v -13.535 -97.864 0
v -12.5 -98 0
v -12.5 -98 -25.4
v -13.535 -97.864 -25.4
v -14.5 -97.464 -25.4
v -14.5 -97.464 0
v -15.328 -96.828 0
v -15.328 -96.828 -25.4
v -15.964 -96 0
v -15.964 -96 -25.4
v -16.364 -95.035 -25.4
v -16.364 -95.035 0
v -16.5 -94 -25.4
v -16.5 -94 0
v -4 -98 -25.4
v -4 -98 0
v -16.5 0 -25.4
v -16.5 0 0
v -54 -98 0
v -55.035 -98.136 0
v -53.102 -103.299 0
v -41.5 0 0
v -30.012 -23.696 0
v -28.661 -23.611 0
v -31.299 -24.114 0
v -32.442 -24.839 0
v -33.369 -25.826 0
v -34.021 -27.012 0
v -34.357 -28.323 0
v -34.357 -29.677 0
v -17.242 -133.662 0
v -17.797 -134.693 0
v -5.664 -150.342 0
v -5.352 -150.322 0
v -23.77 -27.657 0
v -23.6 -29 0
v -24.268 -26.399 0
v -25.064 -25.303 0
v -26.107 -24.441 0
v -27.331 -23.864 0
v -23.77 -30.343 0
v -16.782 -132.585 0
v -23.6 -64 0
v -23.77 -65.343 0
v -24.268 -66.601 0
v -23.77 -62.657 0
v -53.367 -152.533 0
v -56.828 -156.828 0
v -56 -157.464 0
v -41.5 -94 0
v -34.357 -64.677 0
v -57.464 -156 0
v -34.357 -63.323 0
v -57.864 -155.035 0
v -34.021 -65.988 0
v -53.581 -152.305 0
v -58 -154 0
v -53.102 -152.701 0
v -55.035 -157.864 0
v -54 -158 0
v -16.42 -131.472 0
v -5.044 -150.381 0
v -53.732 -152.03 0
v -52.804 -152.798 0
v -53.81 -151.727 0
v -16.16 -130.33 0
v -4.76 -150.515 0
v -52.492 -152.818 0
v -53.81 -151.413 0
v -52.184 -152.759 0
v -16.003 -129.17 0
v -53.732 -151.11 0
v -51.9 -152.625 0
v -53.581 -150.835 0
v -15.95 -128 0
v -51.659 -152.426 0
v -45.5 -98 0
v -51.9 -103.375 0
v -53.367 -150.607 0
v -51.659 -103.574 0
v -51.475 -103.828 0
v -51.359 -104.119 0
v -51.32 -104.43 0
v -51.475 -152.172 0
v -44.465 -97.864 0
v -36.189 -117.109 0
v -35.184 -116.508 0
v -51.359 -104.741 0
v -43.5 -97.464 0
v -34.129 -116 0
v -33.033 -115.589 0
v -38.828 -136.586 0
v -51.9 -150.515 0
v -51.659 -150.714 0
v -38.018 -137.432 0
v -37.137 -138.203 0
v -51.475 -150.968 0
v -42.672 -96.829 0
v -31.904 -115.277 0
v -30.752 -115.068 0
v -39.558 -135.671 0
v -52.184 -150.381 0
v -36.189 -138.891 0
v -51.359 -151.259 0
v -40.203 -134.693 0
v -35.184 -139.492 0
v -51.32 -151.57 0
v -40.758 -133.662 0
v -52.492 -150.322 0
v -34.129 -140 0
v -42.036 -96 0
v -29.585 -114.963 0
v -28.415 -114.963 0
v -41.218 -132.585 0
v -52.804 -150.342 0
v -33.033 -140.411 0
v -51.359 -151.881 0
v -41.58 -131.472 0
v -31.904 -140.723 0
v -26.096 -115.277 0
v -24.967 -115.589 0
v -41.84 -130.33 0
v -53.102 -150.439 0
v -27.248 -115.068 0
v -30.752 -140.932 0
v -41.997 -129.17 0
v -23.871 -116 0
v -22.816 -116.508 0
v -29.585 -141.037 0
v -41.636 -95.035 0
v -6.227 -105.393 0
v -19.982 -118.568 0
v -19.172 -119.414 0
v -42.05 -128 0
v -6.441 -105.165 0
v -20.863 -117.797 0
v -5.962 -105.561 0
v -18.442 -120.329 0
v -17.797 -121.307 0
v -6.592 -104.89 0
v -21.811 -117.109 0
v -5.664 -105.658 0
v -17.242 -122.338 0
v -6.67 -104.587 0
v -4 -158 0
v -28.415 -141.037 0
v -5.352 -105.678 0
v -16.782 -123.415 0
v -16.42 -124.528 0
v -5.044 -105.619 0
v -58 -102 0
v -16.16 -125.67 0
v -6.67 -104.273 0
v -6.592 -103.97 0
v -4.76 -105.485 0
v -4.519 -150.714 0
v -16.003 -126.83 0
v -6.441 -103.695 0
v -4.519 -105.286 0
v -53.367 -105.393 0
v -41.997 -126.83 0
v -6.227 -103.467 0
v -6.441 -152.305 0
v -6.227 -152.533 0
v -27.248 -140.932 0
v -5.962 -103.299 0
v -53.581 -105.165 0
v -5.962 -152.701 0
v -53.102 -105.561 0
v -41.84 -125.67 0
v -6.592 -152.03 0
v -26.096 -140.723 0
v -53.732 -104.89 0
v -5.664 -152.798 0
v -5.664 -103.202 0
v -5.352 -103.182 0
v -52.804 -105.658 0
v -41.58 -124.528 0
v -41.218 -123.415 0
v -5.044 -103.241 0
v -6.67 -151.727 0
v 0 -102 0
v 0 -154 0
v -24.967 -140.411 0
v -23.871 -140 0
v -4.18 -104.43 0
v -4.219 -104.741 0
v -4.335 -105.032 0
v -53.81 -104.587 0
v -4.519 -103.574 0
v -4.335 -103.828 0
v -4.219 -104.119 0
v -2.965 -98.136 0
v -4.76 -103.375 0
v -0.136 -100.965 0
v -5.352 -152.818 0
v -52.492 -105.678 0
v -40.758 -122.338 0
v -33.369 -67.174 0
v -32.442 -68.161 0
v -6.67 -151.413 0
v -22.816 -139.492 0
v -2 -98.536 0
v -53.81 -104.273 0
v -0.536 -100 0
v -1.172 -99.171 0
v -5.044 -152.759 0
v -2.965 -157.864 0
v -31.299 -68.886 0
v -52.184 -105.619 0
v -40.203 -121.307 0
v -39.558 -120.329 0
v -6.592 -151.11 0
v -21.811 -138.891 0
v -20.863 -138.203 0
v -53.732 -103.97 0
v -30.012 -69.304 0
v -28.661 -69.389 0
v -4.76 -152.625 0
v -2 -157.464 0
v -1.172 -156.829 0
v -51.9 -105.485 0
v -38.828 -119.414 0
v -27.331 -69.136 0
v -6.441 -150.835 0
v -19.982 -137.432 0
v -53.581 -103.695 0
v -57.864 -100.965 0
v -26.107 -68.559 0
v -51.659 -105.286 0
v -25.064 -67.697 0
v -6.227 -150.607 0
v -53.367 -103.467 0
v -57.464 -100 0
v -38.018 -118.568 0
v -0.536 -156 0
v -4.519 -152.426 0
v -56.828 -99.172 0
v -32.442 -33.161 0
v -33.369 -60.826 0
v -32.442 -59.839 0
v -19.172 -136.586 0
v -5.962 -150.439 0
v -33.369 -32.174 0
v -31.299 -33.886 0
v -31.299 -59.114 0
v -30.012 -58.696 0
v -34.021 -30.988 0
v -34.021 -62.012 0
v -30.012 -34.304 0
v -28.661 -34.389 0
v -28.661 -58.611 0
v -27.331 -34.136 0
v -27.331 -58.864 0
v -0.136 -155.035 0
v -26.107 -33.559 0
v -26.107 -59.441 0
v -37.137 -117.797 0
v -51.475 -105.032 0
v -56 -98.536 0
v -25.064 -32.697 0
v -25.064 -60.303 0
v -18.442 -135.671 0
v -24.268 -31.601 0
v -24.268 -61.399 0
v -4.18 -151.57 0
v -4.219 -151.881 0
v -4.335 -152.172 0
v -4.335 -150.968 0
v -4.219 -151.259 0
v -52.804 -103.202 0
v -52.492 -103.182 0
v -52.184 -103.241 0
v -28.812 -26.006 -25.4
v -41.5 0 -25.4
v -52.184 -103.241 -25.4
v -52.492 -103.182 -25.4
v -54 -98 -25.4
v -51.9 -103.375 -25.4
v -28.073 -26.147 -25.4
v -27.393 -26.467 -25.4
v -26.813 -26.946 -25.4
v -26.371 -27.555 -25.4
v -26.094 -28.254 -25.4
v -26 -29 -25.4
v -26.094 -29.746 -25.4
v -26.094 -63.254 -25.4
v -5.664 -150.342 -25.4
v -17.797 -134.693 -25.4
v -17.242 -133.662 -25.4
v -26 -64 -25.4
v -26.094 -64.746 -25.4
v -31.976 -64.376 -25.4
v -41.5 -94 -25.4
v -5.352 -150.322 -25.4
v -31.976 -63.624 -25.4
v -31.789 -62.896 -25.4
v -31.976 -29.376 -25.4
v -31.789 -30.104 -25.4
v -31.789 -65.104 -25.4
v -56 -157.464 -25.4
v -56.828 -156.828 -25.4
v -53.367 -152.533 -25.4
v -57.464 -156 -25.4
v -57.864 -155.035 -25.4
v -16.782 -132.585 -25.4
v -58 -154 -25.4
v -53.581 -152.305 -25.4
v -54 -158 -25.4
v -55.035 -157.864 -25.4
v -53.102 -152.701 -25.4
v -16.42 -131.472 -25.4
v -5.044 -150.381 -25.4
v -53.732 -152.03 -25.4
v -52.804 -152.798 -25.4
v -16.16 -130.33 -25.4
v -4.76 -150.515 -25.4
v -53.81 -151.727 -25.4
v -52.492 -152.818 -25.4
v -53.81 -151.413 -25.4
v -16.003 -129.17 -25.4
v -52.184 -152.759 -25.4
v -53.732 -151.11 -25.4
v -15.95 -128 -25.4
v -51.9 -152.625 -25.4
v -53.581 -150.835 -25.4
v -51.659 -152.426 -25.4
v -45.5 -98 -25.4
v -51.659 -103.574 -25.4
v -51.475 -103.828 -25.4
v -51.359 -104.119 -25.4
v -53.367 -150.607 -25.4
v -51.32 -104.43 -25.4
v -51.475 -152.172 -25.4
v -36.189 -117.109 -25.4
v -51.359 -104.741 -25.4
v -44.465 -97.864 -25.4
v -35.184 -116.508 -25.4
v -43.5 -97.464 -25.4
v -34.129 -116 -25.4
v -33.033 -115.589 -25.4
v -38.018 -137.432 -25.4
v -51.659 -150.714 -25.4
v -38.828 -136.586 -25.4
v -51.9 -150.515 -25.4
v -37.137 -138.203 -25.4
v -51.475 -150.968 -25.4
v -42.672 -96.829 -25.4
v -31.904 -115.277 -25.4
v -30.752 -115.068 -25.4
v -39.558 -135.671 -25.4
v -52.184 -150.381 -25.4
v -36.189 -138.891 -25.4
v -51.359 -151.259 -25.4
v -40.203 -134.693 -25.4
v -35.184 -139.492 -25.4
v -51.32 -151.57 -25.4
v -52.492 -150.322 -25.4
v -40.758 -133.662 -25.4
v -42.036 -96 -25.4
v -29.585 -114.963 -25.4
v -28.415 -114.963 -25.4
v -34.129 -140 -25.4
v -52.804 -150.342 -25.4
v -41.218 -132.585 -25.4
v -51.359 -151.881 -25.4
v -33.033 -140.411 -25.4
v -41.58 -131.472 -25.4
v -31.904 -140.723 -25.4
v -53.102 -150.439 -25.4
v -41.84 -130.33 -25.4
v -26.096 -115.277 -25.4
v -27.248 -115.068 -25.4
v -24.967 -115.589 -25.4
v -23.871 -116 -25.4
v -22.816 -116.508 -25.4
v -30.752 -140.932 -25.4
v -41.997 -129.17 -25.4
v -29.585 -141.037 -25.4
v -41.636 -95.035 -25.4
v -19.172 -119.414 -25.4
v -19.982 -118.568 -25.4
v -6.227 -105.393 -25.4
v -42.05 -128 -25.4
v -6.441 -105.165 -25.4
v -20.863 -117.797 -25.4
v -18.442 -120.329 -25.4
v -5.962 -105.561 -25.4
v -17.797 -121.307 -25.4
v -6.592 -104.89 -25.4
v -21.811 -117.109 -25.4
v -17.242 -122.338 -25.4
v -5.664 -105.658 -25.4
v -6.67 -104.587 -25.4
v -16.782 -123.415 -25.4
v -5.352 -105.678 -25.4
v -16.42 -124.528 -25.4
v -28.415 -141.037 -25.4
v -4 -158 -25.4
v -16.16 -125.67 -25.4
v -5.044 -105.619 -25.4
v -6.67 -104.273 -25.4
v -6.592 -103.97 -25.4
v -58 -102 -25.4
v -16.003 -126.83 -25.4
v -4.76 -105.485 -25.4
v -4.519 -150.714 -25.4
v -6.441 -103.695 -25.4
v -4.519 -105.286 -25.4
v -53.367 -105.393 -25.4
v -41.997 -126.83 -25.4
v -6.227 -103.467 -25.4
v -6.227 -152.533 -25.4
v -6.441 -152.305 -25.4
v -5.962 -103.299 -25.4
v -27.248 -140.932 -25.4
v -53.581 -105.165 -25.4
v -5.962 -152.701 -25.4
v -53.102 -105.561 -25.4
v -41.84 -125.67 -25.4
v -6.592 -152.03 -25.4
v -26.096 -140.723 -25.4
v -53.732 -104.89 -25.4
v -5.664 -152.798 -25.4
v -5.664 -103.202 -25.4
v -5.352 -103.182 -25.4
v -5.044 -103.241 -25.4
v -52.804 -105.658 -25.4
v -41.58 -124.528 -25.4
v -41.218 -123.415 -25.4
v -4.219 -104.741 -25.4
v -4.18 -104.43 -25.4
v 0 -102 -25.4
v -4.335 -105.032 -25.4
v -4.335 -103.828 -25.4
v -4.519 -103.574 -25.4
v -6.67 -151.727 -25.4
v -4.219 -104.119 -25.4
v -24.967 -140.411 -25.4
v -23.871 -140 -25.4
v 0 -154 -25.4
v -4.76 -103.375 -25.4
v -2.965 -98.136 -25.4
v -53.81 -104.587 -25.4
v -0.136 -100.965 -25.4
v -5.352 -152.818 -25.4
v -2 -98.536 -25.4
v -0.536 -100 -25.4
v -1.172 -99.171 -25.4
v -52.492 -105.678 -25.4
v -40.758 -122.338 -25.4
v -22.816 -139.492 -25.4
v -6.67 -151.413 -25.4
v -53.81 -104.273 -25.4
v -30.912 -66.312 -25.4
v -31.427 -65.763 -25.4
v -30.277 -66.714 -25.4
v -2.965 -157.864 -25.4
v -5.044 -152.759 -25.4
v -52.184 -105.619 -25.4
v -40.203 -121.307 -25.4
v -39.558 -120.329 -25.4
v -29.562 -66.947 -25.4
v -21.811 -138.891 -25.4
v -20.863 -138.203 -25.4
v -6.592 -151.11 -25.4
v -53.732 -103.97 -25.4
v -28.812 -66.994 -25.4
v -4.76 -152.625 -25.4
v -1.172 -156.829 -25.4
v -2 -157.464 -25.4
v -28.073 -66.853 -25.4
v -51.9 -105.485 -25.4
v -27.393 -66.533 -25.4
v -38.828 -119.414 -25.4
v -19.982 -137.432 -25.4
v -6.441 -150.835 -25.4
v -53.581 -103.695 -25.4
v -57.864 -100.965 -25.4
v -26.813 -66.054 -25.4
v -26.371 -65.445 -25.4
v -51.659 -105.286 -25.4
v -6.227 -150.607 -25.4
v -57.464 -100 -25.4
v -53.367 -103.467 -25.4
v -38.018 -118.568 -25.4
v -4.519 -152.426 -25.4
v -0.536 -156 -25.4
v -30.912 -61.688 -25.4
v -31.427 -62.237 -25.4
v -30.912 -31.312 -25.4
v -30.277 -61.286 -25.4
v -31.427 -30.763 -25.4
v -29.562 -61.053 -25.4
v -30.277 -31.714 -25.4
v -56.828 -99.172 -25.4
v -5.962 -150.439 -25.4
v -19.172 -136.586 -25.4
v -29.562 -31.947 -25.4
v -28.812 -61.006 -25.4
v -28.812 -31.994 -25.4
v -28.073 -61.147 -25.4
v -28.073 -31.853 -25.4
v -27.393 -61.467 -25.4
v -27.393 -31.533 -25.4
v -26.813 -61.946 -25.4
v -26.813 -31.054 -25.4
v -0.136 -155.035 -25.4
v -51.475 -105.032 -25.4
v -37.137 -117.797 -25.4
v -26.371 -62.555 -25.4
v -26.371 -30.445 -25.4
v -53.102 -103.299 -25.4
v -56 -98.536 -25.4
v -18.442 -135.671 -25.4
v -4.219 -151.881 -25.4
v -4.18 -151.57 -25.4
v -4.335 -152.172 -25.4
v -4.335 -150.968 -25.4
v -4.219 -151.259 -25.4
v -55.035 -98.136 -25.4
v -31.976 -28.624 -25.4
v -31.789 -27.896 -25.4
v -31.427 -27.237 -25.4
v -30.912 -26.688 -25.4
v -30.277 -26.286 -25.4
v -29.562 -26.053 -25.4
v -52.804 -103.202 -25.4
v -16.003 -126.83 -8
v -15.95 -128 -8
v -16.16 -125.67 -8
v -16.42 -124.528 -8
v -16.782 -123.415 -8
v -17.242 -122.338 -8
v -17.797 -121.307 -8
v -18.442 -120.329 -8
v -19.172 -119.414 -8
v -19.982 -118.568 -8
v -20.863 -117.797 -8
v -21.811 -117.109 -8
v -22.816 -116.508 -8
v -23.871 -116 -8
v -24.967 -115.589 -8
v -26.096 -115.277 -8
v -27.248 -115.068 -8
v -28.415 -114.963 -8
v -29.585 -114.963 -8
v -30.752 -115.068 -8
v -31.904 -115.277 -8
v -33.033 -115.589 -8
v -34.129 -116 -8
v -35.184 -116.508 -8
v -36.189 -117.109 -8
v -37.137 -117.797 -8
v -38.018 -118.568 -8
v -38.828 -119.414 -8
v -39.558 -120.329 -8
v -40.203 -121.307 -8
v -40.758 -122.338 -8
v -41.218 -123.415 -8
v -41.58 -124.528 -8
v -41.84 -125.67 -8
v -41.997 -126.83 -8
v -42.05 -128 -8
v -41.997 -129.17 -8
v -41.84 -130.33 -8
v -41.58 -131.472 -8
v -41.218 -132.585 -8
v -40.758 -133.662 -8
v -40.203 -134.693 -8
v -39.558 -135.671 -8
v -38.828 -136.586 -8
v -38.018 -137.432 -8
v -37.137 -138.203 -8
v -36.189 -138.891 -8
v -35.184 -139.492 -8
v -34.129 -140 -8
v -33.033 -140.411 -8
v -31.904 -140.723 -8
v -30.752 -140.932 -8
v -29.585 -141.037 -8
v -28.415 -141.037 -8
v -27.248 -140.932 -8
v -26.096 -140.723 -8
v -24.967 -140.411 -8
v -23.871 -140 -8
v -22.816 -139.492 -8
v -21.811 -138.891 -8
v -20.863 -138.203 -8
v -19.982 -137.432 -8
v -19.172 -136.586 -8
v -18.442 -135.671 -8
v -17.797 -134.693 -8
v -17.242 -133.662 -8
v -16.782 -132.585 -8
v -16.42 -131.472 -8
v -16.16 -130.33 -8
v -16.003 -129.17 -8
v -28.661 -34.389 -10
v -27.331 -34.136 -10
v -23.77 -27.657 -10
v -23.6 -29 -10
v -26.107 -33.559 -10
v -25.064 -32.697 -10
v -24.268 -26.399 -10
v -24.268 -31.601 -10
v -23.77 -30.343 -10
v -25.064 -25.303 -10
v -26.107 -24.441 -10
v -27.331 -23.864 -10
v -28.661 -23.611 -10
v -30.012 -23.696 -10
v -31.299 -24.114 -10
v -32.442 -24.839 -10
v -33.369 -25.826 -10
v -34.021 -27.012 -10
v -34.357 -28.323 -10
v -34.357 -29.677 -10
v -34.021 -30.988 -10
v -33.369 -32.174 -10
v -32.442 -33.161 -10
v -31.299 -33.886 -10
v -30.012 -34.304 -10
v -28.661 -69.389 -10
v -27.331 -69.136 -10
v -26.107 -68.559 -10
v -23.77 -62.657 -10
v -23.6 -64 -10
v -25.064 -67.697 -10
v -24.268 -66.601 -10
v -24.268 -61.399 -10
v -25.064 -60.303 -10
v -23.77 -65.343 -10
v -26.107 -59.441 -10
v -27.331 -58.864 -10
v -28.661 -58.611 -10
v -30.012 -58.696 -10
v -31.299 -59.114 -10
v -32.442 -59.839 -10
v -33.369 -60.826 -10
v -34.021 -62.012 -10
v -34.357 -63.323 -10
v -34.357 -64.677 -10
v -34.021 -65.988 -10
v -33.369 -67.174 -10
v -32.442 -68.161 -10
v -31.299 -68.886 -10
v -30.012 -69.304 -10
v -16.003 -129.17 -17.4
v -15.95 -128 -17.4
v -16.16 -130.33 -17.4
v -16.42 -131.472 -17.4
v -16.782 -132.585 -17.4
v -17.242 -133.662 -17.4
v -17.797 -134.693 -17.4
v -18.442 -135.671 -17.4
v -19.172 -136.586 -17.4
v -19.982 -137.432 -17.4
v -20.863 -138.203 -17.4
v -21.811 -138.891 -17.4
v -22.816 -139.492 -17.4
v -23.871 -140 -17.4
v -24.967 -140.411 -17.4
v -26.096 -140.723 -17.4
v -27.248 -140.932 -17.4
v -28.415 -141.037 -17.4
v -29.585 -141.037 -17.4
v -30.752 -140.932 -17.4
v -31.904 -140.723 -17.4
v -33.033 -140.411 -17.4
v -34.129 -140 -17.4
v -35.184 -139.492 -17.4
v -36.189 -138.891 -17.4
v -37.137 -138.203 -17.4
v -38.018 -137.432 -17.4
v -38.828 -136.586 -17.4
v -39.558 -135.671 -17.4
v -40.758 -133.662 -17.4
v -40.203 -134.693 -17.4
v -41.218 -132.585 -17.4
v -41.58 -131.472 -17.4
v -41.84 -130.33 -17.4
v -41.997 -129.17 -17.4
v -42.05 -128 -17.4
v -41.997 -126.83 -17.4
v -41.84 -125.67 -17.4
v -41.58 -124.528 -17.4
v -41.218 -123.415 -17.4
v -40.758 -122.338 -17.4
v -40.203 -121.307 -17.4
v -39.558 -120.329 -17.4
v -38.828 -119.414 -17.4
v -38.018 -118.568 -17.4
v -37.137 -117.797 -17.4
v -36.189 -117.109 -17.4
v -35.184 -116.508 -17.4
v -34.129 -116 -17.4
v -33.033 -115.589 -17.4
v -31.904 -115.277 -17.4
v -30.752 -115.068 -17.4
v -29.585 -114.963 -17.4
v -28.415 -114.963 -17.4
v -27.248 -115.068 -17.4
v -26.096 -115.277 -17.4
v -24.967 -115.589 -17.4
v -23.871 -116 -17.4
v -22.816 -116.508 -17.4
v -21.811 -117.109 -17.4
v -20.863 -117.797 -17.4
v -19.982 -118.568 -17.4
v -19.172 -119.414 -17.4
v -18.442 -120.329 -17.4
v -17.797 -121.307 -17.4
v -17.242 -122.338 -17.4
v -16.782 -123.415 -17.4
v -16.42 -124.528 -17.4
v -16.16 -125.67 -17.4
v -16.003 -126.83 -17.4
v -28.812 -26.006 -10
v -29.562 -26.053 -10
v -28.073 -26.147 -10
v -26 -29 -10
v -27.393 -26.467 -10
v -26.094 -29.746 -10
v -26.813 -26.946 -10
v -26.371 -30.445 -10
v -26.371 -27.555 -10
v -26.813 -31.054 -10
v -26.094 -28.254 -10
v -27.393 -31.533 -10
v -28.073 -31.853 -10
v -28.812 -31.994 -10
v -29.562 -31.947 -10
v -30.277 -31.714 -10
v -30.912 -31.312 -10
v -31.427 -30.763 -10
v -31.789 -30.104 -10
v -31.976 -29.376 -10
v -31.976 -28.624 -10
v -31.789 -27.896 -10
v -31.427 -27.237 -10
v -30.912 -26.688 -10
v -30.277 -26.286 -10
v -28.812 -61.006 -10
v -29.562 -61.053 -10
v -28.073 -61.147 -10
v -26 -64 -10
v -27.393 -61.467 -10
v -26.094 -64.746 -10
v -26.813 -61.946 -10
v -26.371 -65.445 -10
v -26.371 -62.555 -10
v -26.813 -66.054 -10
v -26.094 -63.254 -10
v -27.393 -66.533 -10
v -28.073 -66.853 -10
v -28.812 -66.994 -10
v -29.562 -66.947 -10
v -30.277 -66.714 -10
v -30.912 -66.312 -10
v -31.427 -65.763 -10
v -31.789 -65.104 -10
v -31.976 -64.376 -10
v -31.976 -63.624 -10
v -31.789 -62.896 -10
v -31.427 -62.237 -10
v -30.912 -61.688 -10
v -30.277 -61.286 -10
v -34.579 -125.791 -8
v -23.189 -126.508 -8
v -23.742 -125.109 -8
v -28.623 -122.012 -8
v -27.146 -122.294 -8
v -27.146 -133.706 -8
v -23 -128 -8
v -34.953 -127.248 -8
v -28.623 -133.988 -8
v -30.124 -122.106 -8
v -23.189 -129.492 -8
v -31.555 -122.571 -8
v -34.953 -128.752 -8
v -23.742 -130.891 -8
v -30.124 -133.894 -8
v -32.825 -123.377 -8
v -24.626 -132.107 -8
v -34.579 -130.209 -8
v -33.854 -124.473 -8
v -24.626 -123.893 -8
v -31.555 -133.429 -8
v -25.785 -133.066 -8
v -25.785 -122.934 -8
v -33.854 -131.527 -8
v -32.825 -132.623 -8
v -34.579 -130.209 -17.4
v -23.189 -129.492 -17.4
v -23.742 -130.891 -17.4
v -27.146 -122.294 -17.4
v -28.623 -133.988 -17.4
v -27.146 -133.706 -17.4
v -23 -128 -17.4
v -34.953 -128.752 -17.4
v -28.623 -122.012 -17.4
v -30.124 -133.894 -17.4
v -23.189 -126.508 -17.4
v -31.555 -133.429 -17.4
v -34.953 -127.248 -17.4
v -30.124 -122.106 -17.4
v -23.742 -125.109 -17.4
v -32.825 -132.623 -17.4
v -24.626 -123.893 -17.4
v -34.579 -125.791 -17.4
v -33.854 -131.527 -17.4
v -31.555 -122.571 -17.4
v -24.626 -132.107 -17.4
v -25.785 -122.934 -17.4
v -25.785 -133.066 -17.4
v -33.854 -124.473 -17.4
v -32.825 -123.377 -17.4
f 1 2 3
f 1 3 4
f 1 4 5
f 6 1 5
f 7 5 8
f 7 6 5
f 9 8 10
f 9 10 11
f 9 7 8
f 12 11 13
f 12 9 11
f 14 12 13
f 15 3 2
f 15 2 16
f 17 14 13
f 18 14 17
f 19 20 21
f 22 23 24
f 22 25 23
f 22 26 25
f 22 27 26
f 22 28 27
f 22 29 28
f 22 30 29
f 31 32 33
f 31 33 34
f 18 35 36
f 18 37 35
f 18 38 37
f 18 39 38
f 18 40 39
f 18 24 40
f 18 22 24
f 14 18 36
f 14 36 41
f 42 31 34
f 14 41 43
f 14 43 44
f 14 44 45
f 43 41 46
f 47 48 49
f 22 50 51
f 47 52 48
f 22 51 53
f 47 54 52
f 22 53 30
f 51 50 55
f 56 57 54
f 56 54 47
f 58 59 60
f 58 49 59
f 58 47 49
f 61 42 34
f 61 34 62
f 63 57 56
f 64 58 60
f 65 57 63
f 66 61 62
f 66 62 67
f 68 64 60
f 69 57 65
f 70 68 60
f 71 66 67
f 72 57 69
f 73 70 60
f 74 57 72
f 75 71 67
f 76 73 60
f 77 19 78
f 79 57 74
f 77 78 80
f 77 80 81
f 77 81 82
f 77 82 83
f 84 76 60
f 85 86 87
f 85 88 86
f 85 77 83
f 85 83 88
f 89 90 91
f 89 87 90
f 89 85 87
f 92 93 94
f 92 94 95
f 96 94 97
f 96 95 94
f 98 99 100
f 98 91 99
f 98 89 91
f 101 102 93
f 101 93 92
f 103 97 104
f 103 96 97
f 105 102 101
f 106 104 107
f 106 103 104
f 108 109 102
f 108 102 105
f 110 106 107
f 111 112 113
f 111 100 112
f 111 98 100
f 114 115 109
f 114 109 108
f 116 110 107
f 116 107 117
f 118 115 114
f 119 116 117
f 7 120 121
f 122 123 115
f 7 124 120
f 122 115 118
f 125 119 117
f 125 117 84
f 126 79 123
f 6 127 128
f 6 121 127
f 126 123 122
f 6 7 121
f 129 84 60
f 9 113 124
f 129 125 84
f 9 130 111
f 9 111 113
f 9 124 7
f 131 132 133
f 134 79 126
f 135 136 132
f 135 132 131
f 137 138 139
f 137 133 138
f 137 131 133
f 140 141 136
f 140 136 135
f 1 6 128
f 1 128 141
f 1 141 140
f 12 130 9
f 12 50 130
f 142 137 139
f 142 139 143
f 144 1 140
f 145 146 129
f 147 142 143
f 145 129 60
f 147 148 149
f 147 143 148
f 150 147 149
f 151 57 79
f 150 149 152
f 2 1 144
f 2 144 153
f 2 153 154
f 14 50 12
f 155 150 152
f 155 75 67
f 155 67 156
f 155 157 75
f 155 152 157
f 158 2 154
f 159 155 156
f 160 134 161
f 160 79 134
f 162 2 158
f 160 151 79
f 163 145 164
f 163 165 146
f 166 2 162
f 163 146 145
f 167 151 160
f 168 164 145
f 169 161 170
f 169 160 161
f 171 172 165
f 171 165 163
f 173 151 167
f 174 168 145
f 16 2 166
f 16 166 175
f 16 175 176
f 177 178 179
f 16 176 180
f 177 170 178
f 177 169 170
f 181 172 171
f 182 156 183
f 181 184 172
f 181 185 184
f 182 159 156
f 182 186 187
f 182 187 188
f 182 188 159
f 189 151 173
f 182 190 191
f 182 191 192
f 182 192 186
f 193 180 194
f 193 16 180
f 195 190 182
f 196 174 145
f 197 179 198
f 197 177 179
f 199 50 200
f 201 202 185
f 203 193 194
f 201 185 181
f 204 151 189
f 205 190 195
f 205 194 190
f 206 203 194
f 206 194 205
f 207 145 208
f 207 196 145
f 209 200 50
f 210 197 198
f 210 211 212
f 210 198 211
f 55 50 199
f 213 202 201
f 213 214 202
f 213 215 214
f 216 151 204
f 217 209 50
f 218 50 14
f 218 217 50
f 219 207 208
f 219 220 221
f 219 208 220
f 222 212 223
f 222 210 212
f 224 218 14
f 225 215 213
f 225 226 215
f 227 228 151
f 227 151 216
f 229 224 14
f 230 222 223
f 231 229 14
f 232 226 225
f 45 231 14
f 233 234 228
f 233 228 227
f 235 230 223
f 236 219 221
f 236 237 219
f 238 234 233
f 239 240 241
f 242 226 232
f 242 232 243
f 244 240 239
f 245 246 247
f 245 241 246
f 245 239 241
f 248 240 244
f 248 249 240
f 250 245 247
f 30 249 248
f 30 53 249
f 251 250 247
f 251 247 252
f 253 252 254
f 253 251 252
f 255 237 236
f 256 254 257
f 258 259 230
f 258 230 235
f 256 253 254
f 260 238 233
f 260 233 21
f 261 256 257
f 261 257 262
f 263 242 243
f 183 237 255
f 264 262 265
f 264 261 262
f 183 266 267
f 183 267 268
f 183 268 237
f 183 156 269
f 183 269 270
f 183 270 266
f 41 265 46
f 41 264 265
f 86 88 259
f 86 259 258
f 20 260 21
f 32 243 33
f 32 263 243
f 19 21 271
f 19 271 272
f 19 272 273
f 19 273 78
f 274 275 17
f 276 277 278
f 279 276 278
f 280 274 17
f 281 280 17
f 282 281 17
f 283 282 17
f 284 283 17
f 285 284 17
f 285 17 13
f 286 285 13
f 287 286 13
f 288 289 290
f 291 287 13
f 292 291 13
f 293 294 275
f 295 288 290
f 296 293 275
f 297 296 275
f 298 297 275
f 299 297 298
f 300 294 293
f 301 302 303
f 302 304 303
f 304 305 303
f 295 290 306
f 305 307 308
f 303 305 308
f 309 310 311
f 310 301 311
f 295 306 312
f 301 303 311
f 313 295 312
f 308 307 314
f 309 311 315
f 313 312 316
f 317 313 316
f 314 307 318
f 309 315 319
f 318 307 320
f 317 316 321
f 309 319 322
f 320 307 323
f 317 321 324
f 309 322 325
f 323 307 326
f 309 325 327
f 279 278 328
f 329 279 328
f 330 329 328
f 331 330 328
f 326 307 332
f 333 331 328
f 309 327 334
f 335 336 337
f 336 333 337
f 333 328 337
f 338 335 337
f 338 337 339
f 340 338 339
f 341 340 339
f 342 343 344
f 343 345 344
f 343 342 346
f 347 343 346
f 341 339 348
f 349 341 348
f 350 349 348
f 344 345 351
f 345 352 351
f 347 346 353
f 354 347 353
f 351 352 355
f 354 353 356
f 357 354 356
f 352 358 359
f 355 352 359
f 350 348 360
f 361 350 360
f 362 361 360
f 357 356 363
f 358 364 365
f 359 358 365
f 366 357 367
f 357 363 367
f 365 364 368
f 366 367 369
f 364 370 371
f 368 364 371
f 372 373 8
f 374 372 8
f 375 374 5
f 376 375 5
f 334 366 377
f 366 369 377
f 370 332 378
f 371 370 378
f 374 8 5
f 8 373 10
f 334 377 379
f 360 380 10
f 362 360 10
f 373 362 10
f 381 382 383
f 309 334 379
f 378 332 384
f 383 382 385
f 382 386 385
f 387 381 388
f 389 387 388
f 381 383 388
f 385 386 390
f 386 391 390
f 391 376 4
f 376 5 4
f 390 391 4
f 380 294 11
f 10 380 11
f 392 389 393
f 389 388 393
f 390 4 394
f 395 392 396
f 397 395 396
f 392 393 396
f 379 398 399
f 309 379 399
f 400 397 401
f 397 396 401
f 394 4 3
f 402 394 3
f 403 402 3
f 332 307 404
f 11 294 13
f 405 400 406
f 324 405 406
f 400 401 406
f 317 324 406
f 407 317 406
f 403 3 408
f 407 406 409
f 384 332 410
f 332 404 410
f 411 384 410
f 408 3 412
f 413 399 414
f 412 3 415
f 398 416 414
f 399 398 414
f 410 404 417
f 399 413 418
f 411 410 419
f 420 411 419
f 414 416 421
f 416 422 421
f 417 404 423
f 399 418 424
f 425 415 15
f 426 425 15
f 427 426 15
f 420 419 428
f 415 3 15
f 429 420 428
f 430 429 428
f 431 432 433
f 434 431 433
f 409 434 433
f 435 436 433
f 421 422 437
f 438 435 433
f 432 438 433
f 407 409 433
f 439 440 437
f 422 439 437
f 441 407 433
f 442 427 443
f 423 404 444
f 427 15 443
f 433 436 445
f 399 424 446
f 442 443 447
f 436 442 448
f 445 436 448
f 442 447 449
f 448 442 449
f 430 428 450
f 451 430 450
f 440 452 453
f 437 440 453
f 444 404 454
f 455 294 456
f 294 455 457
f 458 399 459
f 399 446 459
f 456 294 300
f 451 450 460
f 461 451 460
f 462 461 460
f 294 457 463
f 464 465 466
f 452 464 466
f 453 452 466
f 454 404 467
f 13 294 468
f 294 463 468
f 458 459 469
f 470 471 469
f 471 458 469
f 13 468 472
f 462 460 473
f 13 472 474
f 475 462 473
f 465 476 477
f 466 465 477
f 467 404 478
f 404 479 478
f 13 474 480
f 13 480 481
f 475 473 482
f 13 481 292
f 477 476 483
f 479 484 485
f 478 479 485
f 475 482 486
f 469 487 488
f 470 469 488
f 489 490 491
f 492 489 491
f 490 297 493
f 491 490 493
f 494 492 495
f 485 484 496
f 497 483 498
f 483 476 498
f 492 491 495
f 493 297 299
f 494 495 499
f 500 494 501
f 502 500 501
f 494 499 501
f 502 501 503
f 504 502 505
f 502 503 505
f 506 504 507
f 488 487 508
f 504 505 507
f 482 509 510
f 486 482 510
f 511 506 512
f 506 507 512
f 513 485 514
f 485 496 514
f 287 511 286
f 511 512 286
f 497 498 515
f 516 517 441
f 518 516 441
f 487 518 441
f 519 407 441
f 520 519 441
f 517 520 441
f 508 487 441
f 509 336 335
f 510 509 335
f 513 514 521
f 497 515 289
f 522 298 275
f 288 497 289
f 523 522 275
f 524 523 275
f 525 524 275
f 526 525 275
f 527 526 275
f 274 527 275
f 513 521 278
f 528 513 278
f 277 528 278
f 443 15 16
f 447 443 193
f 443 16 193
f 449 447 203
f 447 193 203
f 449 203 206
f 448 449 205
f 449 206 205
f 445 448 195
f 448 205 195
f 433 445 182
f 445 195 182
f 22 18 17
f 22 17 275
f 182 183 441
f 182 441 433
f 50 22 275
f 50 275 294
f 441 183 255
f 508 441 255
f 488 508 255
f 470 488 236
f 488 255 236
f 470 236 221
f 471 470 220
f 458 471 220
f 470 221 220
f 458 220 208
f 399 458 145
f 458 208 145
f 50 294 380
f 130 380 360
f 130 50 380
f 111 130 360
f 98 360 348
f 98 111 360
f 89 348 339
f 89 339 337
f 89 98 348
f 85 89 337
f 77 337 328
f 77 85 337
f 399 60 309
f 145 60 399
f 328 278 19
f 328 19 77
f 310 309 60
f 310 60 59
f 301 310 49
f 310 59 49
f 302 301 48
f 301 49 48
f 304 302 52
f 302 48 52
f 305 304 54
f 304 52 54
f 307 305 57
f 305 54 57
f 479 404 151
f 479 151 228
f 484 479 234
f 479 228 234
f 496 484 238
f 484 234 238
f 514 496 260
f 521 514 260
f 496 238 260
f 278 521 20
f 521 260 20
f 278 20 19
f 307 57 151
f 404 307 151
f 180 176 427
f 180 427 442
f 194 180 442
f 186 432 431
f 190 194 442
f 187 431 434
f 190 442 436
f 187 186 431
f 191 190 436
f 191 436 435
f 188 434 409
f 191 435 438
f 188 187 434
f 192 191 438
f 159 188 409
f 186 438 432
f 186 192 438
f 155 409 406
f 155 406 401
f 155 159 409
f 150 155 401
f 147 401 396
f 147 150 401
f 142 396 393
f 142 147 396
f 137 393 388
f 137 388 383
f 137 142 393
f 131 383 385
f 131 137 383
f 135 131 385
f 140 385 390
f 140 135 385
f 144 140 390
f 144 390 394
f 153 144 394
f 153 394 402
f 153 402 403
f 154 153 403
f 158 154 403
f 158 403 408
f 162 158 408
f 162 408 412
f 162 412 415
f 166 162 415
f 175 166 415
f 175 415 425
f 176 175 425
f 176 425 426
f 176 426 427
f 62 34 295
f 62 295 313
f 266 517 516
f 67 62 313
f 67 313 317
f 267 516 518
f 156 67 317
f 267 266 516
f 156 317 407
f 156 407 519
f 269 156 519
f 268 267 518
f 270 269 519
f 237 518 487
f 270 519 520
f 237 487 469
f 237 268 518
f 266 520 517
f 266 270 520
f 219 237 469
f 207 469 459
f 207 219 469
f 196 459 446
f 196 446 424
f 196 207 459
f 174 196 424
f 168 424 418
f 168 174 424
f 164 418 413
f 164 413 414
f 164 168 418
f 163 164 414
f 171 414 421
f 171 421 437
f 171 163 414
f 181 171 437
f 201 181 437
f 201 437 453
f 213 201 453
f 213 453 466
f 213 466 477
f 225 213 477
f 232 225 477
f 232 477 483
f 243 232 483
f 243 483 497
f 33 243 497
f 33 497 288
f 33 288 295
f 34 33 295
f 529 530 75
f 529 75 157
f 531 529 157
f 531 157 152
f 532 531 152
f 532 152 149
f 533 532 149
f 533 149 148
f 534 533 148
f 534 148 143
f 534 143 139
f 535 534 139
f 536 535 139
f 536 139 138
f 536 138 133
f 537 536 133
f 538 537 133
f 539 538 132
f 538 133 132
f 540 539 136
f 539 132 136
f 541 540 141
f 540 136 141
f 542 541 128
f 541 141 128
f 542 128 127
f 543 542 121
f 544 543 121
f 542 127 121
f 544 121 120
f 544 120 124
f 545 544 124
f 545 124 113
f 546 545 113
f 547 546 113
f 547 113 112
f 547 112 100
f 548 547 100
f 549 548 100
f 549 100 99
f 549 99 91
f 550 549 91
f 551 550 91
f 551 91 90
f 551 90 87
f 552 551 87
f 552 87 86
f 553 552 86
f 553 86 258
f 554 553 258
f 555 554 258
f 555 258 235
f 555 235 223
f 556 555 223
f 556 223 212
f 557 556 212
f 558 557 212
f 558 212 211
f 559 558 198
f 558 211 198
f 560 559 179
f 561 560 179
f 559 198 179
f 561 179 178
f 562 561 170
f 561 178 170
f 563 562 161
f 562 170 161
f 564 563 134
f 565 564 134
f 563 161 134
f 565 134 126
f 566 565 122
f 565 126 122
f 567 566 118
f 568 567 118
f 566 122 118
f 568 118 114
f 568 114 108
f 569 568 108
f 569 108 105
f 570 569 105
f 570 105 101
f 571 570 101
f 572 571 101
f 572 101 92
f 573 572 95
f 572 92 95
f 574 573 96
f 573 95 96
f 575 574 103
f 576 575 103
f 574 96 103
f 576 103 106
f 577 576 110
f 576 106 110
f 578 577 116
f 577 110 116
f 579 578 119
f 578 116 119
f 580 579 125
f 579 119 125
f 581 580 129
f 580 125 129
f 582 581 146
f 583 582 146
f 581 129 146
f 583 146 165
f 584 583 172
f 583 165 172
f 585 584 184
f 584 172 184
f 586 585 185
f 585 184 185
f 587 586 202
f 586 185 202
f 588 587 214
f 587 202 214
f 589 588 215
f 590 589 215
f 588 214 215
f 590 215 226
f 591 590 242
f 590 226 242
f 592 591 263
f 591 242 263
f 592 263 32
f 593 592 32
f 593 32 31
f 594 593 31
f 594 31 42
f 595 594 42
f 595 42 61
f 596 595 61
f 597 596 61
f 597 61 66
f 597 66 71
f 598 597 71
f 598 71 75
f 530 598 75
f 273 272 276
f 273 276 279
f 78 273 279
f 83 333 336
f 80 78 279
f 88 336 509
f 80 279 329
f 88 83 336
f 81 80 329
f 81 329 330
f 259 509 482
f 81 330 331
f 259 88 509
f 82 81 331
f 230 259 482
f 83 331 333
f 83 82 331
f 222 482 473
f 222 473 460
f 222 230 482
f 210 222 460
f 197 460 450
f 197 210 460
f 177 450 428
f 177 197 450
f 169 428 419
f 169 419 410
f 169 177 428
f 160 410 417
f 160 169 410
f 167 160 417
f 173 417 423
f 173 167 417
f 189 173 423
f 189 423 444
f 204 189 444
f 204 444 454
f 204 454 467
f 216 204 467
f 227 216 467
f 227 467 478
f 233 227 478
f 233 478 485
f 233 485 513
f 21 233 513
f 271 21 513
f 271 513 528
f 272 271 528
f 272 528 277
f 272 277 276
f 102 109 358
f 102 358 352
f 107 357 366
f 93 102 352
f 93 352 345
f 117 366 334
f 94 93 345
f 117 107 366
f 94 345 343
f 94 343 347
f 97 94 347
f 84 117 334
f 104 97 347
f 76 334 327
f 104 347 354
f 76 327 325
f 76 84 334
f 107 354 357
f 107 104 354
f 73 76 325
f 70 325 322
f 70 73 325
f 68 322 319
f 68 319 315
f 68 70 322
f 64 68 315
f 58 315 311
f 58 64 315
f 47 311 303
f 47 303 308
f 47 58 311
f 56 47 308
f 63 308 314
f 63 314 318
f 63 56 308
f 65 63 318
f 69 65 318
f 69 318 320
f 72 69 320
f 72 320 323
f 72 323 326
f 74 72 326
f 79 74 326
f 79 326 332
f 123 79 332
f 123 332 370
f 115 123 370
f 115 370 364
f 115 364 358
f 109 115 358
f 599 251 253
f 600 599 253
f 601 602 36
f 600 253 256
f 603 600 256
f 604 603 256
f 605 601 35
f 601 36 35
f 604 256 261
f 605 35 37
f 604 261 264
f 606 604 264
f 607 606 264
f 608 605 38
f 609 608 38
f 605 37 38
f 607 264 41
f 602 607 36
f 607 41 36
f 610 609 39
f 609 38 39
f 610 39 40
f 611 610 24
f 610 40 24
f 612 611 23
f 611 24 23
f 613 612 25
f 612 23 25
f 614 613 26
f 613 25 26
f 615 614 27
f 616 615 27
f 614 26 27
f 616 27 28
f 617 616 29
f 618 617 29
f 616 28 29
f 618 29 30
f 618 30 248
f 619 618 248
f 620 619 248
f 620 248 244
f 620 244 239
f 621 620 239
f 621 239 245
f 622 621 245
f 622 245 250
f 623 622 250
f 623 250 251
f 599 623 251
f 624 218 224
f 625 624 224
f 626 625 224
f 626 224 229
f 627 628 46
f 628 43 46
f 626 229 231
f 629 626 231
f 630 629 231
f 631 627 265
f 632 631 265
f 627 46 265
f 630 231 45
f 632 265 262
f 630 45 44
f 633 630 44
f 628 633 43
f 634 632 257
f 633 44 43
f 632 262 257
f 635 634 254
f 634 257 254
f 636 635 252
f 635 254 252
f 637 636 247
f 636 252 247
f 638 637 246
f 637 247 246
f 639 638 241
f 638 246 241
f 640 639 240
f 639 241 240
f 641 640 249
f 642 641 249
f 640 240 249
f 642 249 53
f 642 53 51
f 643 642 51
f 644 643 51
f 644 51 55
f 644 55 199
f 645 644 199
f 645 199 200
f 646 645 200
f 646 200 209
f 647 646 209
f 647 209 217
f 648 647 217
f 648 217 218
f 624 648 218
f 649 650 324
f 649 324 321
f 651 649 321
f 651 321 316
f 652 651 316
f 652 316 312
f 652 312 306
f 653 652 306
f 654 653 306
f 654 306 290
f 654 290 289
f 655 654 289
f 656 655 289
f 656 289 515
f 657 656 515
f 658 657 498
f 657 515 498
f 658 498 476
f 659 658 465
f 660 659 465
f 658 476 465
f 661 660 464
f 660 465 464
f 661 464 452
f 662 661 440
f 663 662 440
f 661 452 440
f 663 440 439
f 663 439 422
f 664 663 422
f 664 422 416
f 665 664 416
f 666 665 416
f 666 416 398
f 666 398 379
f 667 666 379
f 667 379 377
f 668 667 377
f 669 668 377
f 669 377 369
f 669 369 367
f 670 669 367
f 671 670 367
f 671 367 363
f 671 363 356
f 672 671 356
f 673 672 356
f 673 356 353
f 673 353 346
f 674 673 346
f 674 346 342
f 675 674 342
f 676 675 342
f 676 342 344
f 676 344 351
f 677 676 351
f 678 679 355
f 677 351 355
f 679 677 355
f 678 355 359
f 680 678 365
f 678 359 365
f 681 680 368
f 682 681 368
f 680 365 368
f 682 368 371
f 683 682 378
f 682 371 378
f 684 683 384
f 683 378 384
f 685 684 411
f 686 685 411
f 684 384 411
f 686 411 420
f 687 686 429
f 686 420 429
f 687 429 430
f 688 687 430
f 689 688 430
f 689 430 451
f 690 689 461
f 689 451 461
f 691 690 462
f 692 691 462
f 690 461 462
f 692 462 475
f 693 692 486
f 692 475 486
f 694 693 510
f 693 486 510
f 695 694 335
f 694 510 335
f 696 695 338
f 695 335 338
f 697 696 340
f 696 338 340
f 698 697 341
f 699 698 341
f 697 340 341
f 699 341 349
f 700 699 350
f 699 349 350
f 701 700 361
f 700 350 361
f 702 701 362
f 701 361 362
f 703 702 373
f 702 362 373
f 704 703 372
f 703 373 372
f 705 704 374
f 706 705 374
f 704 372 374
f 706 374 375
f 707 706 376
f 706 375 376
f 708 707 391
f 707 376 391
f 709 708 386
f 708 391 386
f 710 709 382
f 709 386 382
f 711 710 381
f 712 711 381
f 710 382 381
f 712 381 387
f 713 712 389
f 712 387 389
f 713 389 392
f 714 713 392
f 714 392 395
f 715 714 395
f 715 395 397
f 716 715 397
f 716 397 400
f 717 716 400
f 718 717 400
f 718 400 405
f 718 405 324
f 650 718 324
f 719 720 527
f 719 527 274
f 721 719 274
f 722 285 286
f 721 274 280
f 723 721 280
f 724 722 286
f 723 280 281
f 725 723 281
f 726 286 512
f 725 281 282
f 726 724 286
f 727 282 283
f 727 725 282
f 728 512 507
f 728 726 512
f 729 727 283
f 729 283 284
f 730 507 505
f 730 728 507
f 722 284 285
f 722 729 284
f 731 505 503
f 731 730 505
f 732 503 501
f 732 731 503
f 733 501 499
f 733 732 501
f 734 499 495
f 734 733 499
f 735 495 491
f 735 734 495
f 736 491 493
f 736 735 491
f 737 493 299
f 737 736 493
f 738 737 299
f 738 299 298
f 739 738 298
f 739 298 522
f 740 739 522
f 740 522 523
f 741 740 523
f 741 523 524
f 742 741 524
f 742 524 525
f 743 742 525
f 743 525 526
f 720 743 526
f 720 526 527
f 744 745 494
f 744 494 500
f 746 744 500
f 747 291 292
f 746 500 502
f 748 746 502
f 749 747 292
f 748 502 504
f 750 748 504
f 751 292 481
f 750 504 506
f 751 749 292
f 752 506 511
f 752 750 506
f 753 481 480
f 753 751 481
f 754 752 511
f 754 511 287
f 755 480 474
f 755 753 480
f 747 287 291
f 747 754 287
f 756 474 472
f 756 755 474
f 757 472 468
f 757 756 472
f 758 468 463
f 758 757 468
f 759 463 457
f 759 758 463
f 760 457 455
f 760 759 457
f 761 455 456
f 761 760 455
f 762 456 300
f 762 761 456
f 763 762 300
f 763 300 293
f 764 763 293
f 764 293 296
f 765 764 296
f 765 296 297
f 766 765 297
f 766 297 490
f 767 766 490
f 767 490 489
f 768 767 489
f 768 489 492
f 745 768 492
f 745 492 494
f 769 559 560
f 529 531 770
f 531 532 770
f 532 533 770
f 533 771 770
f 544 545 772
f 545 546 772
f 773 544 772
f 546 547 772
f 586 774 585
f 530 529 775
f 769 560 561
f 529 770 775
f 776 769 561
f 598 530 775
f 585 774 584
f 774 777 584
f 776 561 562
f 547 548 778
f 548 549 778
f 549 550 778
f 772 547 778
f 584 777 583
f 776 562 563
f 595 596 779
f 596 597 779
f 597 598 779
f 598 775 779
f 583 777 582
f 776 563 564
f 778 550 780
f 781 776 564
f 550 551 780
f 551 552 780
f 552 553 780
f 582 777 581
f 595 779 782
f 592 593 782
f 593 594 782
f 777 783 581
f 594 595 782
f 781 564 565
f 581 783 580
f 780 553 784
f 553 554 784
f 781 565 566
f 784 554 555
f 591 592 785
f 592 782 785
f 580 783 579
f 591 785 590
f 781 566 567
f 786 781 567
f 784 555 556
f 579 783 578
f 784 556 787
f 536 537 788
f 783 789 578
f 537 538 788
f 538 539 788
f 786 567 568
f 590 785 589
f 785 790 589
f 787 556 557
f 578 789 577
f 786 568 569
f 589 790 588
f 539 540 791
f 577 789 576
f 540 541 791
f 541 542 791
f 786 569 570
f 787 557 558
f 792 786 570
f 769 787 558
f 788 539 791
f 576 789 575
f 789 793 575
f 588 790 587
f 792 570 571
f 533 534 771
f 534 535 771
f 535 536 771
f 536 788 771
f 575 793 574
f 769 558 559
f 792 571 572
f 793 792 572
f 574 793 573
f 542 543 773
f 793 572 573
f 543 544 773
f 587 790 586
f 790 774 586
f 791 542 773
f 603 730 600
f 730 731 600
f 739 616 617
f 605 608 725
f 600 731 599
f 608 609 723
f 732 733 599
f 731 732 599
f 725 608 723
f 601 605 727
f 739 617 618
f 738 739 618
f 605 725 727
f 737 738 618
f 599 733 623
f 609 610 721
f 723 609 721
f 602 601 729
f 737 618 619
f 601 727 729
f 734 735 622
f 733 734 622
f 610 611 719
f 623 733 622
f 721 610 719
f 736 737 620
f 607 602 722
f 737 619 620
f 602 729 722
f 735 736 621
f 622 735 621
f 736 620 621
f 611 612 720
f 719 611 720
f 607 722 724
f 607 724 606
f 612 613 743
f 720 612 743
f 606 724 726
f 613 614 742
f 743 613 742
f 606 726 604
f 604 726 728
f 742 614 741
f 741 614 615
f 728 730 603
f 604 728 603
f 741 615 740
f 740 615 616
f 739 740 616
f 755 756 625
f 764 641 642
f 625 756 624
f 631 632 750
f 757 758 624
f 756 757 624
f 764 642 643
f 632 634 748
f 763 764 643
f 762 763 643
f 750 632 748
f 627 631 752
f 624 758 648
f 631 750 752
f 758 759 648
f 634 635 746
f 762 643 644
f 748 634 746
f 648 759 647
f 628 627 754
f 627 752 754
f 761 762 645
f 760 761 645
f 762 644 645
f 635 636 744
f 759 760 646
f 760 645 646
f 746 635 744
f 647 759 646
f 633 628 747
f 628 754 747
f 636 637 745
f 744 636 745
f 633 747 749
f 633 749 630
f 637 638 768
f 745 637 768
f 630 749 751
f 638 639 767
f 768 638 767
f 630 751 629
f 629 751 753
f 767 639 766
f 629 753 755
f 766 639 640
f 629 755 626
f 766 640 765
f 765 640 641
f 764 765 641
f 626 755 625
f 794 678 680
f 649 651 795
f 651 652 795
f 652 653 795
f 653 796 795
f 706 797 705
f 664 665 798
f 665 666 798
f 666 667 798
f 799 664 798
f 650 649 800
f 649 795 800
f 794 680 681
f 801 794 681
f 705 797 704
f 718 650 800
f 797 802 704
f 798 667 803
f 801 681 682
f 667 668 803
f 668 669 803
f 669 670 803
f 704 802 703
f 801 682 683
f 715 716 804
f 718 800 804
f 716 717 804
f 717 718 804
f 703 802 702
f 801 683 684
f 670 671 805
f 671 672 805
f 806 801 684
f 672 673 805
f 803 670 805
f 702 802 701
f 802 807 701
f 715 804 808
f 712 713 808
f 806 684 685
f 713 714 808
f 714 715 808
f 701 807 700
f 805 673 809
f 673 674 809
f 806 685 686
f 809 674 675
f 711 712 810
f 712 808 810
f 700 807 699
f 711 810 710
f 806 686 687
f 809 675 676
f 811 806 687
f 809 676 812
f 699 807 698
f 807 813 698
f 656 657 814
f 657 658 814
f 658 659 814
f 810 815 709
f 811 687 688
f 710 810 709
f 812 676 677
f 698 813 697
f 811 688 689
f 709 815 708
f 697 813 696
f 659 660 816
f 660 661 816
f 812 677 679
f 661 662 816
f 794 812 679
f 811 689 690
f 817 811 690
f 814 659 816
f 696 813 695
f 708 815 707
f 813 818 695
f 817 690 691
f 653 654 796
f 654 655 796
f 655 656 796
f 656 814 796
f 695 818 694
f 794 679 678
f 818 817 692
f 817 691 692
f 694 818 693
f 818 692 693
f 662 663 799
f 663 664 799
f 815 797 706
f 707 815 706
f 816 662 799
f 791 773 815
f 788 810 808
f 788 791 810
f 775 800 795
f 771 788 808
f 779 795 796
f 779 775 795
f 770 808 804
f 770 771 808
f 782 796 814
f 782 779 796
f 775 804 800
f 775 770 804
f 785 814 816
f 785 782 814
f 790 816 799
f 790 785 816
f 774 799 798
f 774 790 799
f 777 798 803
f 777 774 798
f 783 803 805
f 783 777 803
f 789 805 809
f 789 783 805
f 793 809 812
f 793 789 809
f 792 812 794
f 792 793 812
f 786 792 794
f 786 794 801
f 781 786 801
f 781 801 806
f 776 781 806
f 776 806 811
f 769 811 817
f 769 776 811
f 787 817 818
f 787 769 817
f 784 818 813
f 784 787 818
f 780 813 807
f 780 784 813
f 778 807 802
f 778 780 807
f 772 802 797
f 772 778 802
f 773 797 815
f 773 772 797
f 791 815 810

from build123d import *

# Parameters (mm, degrees)
SKETCH002_R     = 6
SKETCH002_R_2   = 3
SKETCH002_R_3   = 1.25
PAD_DEPTH       = 25.4
SKETCH_R        = 13.05
POCKET_DEPTH    = 8
SKETCH003_R     = 13.05
POCKET001_DEPTH = 8
SKETCH004_R     = 5.4
POCKET002_DEPTH = 10


with BuildPart() as part:
    # Sketch002 → Pad (new body)
    with BuildSketch(Plane(origin=(0, 0, 0), x_dir=(1, 0, 0), z_dir=(0, 0, -1))):
        with BuildLine():
            Line((-16.5, 0), (-41.5, 0))
            Line((-41.5, 0), (-41.5, 94.000095))
            ThreePointArc((-41.5, 94.000095), (-42.671573, 96.828522), (-45.499999, 98.000094))
            Line((-54.000002, 98.000094), (-45.499999, 98.000094))
            ThreePointArc((-58, 102.000095), (-56.828428, 99.171668), (-54.000002, 98.000094))
            Line((-58, 153.999905), (-58, 102.000095))
            ThreePointArc((-54.000014, 157.999905), (-56.828432, 156.828327), (-58, 153.999905))
            Line((-54.000014, 157.999905), (-4.000015, 158.000095))
            ThreePointArc((0, 154.000095), (-1.171578, 156.828527), (-4.000015, 158.000095))
            Line((0, 154.000095), (0, 101.999905))
            ThreePointArc((-4.000015, 97.999905), (-1.171578, 99.171473), (0, 101.999905))
            Line((-12.500001, 97.999905), (-4.000015, 97.999905))
            ThreePointArc((-12.500001, 97.999905), (-15.328427, 96.828332), (-16.5, 93.999905))
            Line((-16.5, 93.999905), (-16.5, 0))
        make_face()
        with Locations((-29, 128)):
            Circle(SKETCH002_R, mode=Mode.SUBTRACT)
        with Locations((-29, 64)):
            Circle(SKETCH002_R_2, mode=Mode.SUBTRACT)
        with Locations((-29, 29)):
            Circle(SKETCH002_R_2, mode=Mode.SUBTRACT)
        with Locations((-5.43, 151.57)):
            Circle(SKETCH002_R_3, mode=Mode.SUBTRACT)
        with Locations((-52.57, 151.57)):
            Circle(SKETCH002_R_3, mode=Mode.SUBTRACT)
        with Locations((-52.57, 104.43)):
            Circle(SKETCH002_R_3, mode=Mode.SUBTRACT)
        with Locations((-5.43, 104.43)):
            Circle(SKETCH002_R_3, mode=Mode.SUBTRACT)
    extrude(amount=PAD_DEPTH)

    # Sketch → Pocket (cut)
    with BuildSketch(Plane.XY):
        with Locations((-29, -128)):
            Circle(SKETCH_R)
    extrude(amount=-POCKET_DEPTH, mode=Mode.SUBTRACT)

    # Sketch003 → Pocket001 (cut)
    with BuildSketch(Plane(origin=(0, 0, -25.4), x_dir=(1, 0, 0), z_dir=(0, 0, -1))):
        with Locations((-29, 128)):
            Circle(SKETCH003_R)
    extrude(amount=-POCKET001_DEPTH, mode=Mode.SUBTRACT)

    # Sketch004 → Pocket002 (cut)
    with BuildSketch(Plane.XY):
        with Locations((-29, -29)):
            Circle(SKETCH004_R)
        with Locations((-29, -64)):
            Circle(SKETCH004_R)
    extrude(amount=-POCKET002_DEPTH, mode=Mode.SUBTRACT)


solid = part.part
